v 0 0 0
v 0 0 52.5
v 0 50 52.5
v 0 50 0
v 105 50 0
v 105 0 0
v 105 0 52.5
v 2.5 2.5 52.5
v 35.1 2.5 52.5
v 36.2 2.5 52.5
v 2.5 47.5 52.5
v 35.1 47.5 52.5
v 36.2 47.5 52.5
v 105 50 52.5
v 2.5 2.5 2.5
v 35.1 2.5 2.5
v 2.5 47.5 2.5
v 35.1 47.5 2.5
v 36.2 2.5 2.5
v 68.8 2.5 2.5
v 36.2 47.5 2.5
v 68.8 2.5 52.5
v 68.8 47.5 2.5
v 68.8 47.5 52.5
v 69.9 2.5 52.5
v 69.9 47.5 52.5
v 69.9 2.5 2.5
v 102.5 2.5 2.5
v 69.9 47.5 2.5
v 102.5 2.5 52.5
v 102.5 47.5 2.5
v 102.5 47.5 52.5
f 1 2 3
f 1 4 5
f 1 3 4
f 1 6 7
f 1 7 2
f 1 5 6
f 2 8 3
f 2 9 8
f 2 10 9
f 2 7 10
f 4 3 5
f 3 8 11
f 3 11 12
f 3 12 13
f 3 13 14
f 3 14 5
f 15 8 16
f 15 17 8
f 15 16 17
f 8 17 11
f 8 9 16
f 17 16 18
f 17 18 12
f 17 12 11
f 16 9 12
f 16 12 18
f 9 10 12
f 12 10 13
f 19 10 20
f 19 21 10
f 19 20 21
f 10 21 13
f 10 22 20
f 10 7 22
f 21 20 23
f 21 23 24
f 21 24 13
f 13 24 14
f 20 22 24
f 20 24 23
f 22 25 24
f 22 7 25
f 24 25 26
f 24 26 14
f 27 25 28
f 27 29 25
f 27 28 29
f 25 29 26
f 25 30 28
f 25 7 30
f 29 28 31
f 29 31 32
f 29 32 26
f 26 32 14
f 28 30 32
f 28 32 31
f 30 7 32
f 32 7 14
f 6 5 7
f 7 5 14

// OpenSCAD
// stand for mayo and katsup
// to organize the fridge
// 01.10.2025 Sebastian Weigl
 
// set the fregment sizes
$fn = $preview ? 48 : 64;

// vars
border=2.5;

fir_box_width=105;
fir_box_depth=50;
fir_box_height=52.5;

sec_box_width=32.6;
sec_box_depth=45;
sec_box_height=51;

// object
difference() {
cube([fir_box_width,fir_box_depth,fir_box_height],false);
translate([border,border,border])
#cube([sec_box_width,sec_box_depth,sec_box_height],false);
translate([fir_box_width-border-sec_box_width,border,border])
#cube([sec_box_width,sec_box_depth,sec_box_height],false);
translate([fir_box_width/2-sec_box_width/2,border,border])
#cube([sec_box_width,sec_box_depth,sec_box_height],false);
}
